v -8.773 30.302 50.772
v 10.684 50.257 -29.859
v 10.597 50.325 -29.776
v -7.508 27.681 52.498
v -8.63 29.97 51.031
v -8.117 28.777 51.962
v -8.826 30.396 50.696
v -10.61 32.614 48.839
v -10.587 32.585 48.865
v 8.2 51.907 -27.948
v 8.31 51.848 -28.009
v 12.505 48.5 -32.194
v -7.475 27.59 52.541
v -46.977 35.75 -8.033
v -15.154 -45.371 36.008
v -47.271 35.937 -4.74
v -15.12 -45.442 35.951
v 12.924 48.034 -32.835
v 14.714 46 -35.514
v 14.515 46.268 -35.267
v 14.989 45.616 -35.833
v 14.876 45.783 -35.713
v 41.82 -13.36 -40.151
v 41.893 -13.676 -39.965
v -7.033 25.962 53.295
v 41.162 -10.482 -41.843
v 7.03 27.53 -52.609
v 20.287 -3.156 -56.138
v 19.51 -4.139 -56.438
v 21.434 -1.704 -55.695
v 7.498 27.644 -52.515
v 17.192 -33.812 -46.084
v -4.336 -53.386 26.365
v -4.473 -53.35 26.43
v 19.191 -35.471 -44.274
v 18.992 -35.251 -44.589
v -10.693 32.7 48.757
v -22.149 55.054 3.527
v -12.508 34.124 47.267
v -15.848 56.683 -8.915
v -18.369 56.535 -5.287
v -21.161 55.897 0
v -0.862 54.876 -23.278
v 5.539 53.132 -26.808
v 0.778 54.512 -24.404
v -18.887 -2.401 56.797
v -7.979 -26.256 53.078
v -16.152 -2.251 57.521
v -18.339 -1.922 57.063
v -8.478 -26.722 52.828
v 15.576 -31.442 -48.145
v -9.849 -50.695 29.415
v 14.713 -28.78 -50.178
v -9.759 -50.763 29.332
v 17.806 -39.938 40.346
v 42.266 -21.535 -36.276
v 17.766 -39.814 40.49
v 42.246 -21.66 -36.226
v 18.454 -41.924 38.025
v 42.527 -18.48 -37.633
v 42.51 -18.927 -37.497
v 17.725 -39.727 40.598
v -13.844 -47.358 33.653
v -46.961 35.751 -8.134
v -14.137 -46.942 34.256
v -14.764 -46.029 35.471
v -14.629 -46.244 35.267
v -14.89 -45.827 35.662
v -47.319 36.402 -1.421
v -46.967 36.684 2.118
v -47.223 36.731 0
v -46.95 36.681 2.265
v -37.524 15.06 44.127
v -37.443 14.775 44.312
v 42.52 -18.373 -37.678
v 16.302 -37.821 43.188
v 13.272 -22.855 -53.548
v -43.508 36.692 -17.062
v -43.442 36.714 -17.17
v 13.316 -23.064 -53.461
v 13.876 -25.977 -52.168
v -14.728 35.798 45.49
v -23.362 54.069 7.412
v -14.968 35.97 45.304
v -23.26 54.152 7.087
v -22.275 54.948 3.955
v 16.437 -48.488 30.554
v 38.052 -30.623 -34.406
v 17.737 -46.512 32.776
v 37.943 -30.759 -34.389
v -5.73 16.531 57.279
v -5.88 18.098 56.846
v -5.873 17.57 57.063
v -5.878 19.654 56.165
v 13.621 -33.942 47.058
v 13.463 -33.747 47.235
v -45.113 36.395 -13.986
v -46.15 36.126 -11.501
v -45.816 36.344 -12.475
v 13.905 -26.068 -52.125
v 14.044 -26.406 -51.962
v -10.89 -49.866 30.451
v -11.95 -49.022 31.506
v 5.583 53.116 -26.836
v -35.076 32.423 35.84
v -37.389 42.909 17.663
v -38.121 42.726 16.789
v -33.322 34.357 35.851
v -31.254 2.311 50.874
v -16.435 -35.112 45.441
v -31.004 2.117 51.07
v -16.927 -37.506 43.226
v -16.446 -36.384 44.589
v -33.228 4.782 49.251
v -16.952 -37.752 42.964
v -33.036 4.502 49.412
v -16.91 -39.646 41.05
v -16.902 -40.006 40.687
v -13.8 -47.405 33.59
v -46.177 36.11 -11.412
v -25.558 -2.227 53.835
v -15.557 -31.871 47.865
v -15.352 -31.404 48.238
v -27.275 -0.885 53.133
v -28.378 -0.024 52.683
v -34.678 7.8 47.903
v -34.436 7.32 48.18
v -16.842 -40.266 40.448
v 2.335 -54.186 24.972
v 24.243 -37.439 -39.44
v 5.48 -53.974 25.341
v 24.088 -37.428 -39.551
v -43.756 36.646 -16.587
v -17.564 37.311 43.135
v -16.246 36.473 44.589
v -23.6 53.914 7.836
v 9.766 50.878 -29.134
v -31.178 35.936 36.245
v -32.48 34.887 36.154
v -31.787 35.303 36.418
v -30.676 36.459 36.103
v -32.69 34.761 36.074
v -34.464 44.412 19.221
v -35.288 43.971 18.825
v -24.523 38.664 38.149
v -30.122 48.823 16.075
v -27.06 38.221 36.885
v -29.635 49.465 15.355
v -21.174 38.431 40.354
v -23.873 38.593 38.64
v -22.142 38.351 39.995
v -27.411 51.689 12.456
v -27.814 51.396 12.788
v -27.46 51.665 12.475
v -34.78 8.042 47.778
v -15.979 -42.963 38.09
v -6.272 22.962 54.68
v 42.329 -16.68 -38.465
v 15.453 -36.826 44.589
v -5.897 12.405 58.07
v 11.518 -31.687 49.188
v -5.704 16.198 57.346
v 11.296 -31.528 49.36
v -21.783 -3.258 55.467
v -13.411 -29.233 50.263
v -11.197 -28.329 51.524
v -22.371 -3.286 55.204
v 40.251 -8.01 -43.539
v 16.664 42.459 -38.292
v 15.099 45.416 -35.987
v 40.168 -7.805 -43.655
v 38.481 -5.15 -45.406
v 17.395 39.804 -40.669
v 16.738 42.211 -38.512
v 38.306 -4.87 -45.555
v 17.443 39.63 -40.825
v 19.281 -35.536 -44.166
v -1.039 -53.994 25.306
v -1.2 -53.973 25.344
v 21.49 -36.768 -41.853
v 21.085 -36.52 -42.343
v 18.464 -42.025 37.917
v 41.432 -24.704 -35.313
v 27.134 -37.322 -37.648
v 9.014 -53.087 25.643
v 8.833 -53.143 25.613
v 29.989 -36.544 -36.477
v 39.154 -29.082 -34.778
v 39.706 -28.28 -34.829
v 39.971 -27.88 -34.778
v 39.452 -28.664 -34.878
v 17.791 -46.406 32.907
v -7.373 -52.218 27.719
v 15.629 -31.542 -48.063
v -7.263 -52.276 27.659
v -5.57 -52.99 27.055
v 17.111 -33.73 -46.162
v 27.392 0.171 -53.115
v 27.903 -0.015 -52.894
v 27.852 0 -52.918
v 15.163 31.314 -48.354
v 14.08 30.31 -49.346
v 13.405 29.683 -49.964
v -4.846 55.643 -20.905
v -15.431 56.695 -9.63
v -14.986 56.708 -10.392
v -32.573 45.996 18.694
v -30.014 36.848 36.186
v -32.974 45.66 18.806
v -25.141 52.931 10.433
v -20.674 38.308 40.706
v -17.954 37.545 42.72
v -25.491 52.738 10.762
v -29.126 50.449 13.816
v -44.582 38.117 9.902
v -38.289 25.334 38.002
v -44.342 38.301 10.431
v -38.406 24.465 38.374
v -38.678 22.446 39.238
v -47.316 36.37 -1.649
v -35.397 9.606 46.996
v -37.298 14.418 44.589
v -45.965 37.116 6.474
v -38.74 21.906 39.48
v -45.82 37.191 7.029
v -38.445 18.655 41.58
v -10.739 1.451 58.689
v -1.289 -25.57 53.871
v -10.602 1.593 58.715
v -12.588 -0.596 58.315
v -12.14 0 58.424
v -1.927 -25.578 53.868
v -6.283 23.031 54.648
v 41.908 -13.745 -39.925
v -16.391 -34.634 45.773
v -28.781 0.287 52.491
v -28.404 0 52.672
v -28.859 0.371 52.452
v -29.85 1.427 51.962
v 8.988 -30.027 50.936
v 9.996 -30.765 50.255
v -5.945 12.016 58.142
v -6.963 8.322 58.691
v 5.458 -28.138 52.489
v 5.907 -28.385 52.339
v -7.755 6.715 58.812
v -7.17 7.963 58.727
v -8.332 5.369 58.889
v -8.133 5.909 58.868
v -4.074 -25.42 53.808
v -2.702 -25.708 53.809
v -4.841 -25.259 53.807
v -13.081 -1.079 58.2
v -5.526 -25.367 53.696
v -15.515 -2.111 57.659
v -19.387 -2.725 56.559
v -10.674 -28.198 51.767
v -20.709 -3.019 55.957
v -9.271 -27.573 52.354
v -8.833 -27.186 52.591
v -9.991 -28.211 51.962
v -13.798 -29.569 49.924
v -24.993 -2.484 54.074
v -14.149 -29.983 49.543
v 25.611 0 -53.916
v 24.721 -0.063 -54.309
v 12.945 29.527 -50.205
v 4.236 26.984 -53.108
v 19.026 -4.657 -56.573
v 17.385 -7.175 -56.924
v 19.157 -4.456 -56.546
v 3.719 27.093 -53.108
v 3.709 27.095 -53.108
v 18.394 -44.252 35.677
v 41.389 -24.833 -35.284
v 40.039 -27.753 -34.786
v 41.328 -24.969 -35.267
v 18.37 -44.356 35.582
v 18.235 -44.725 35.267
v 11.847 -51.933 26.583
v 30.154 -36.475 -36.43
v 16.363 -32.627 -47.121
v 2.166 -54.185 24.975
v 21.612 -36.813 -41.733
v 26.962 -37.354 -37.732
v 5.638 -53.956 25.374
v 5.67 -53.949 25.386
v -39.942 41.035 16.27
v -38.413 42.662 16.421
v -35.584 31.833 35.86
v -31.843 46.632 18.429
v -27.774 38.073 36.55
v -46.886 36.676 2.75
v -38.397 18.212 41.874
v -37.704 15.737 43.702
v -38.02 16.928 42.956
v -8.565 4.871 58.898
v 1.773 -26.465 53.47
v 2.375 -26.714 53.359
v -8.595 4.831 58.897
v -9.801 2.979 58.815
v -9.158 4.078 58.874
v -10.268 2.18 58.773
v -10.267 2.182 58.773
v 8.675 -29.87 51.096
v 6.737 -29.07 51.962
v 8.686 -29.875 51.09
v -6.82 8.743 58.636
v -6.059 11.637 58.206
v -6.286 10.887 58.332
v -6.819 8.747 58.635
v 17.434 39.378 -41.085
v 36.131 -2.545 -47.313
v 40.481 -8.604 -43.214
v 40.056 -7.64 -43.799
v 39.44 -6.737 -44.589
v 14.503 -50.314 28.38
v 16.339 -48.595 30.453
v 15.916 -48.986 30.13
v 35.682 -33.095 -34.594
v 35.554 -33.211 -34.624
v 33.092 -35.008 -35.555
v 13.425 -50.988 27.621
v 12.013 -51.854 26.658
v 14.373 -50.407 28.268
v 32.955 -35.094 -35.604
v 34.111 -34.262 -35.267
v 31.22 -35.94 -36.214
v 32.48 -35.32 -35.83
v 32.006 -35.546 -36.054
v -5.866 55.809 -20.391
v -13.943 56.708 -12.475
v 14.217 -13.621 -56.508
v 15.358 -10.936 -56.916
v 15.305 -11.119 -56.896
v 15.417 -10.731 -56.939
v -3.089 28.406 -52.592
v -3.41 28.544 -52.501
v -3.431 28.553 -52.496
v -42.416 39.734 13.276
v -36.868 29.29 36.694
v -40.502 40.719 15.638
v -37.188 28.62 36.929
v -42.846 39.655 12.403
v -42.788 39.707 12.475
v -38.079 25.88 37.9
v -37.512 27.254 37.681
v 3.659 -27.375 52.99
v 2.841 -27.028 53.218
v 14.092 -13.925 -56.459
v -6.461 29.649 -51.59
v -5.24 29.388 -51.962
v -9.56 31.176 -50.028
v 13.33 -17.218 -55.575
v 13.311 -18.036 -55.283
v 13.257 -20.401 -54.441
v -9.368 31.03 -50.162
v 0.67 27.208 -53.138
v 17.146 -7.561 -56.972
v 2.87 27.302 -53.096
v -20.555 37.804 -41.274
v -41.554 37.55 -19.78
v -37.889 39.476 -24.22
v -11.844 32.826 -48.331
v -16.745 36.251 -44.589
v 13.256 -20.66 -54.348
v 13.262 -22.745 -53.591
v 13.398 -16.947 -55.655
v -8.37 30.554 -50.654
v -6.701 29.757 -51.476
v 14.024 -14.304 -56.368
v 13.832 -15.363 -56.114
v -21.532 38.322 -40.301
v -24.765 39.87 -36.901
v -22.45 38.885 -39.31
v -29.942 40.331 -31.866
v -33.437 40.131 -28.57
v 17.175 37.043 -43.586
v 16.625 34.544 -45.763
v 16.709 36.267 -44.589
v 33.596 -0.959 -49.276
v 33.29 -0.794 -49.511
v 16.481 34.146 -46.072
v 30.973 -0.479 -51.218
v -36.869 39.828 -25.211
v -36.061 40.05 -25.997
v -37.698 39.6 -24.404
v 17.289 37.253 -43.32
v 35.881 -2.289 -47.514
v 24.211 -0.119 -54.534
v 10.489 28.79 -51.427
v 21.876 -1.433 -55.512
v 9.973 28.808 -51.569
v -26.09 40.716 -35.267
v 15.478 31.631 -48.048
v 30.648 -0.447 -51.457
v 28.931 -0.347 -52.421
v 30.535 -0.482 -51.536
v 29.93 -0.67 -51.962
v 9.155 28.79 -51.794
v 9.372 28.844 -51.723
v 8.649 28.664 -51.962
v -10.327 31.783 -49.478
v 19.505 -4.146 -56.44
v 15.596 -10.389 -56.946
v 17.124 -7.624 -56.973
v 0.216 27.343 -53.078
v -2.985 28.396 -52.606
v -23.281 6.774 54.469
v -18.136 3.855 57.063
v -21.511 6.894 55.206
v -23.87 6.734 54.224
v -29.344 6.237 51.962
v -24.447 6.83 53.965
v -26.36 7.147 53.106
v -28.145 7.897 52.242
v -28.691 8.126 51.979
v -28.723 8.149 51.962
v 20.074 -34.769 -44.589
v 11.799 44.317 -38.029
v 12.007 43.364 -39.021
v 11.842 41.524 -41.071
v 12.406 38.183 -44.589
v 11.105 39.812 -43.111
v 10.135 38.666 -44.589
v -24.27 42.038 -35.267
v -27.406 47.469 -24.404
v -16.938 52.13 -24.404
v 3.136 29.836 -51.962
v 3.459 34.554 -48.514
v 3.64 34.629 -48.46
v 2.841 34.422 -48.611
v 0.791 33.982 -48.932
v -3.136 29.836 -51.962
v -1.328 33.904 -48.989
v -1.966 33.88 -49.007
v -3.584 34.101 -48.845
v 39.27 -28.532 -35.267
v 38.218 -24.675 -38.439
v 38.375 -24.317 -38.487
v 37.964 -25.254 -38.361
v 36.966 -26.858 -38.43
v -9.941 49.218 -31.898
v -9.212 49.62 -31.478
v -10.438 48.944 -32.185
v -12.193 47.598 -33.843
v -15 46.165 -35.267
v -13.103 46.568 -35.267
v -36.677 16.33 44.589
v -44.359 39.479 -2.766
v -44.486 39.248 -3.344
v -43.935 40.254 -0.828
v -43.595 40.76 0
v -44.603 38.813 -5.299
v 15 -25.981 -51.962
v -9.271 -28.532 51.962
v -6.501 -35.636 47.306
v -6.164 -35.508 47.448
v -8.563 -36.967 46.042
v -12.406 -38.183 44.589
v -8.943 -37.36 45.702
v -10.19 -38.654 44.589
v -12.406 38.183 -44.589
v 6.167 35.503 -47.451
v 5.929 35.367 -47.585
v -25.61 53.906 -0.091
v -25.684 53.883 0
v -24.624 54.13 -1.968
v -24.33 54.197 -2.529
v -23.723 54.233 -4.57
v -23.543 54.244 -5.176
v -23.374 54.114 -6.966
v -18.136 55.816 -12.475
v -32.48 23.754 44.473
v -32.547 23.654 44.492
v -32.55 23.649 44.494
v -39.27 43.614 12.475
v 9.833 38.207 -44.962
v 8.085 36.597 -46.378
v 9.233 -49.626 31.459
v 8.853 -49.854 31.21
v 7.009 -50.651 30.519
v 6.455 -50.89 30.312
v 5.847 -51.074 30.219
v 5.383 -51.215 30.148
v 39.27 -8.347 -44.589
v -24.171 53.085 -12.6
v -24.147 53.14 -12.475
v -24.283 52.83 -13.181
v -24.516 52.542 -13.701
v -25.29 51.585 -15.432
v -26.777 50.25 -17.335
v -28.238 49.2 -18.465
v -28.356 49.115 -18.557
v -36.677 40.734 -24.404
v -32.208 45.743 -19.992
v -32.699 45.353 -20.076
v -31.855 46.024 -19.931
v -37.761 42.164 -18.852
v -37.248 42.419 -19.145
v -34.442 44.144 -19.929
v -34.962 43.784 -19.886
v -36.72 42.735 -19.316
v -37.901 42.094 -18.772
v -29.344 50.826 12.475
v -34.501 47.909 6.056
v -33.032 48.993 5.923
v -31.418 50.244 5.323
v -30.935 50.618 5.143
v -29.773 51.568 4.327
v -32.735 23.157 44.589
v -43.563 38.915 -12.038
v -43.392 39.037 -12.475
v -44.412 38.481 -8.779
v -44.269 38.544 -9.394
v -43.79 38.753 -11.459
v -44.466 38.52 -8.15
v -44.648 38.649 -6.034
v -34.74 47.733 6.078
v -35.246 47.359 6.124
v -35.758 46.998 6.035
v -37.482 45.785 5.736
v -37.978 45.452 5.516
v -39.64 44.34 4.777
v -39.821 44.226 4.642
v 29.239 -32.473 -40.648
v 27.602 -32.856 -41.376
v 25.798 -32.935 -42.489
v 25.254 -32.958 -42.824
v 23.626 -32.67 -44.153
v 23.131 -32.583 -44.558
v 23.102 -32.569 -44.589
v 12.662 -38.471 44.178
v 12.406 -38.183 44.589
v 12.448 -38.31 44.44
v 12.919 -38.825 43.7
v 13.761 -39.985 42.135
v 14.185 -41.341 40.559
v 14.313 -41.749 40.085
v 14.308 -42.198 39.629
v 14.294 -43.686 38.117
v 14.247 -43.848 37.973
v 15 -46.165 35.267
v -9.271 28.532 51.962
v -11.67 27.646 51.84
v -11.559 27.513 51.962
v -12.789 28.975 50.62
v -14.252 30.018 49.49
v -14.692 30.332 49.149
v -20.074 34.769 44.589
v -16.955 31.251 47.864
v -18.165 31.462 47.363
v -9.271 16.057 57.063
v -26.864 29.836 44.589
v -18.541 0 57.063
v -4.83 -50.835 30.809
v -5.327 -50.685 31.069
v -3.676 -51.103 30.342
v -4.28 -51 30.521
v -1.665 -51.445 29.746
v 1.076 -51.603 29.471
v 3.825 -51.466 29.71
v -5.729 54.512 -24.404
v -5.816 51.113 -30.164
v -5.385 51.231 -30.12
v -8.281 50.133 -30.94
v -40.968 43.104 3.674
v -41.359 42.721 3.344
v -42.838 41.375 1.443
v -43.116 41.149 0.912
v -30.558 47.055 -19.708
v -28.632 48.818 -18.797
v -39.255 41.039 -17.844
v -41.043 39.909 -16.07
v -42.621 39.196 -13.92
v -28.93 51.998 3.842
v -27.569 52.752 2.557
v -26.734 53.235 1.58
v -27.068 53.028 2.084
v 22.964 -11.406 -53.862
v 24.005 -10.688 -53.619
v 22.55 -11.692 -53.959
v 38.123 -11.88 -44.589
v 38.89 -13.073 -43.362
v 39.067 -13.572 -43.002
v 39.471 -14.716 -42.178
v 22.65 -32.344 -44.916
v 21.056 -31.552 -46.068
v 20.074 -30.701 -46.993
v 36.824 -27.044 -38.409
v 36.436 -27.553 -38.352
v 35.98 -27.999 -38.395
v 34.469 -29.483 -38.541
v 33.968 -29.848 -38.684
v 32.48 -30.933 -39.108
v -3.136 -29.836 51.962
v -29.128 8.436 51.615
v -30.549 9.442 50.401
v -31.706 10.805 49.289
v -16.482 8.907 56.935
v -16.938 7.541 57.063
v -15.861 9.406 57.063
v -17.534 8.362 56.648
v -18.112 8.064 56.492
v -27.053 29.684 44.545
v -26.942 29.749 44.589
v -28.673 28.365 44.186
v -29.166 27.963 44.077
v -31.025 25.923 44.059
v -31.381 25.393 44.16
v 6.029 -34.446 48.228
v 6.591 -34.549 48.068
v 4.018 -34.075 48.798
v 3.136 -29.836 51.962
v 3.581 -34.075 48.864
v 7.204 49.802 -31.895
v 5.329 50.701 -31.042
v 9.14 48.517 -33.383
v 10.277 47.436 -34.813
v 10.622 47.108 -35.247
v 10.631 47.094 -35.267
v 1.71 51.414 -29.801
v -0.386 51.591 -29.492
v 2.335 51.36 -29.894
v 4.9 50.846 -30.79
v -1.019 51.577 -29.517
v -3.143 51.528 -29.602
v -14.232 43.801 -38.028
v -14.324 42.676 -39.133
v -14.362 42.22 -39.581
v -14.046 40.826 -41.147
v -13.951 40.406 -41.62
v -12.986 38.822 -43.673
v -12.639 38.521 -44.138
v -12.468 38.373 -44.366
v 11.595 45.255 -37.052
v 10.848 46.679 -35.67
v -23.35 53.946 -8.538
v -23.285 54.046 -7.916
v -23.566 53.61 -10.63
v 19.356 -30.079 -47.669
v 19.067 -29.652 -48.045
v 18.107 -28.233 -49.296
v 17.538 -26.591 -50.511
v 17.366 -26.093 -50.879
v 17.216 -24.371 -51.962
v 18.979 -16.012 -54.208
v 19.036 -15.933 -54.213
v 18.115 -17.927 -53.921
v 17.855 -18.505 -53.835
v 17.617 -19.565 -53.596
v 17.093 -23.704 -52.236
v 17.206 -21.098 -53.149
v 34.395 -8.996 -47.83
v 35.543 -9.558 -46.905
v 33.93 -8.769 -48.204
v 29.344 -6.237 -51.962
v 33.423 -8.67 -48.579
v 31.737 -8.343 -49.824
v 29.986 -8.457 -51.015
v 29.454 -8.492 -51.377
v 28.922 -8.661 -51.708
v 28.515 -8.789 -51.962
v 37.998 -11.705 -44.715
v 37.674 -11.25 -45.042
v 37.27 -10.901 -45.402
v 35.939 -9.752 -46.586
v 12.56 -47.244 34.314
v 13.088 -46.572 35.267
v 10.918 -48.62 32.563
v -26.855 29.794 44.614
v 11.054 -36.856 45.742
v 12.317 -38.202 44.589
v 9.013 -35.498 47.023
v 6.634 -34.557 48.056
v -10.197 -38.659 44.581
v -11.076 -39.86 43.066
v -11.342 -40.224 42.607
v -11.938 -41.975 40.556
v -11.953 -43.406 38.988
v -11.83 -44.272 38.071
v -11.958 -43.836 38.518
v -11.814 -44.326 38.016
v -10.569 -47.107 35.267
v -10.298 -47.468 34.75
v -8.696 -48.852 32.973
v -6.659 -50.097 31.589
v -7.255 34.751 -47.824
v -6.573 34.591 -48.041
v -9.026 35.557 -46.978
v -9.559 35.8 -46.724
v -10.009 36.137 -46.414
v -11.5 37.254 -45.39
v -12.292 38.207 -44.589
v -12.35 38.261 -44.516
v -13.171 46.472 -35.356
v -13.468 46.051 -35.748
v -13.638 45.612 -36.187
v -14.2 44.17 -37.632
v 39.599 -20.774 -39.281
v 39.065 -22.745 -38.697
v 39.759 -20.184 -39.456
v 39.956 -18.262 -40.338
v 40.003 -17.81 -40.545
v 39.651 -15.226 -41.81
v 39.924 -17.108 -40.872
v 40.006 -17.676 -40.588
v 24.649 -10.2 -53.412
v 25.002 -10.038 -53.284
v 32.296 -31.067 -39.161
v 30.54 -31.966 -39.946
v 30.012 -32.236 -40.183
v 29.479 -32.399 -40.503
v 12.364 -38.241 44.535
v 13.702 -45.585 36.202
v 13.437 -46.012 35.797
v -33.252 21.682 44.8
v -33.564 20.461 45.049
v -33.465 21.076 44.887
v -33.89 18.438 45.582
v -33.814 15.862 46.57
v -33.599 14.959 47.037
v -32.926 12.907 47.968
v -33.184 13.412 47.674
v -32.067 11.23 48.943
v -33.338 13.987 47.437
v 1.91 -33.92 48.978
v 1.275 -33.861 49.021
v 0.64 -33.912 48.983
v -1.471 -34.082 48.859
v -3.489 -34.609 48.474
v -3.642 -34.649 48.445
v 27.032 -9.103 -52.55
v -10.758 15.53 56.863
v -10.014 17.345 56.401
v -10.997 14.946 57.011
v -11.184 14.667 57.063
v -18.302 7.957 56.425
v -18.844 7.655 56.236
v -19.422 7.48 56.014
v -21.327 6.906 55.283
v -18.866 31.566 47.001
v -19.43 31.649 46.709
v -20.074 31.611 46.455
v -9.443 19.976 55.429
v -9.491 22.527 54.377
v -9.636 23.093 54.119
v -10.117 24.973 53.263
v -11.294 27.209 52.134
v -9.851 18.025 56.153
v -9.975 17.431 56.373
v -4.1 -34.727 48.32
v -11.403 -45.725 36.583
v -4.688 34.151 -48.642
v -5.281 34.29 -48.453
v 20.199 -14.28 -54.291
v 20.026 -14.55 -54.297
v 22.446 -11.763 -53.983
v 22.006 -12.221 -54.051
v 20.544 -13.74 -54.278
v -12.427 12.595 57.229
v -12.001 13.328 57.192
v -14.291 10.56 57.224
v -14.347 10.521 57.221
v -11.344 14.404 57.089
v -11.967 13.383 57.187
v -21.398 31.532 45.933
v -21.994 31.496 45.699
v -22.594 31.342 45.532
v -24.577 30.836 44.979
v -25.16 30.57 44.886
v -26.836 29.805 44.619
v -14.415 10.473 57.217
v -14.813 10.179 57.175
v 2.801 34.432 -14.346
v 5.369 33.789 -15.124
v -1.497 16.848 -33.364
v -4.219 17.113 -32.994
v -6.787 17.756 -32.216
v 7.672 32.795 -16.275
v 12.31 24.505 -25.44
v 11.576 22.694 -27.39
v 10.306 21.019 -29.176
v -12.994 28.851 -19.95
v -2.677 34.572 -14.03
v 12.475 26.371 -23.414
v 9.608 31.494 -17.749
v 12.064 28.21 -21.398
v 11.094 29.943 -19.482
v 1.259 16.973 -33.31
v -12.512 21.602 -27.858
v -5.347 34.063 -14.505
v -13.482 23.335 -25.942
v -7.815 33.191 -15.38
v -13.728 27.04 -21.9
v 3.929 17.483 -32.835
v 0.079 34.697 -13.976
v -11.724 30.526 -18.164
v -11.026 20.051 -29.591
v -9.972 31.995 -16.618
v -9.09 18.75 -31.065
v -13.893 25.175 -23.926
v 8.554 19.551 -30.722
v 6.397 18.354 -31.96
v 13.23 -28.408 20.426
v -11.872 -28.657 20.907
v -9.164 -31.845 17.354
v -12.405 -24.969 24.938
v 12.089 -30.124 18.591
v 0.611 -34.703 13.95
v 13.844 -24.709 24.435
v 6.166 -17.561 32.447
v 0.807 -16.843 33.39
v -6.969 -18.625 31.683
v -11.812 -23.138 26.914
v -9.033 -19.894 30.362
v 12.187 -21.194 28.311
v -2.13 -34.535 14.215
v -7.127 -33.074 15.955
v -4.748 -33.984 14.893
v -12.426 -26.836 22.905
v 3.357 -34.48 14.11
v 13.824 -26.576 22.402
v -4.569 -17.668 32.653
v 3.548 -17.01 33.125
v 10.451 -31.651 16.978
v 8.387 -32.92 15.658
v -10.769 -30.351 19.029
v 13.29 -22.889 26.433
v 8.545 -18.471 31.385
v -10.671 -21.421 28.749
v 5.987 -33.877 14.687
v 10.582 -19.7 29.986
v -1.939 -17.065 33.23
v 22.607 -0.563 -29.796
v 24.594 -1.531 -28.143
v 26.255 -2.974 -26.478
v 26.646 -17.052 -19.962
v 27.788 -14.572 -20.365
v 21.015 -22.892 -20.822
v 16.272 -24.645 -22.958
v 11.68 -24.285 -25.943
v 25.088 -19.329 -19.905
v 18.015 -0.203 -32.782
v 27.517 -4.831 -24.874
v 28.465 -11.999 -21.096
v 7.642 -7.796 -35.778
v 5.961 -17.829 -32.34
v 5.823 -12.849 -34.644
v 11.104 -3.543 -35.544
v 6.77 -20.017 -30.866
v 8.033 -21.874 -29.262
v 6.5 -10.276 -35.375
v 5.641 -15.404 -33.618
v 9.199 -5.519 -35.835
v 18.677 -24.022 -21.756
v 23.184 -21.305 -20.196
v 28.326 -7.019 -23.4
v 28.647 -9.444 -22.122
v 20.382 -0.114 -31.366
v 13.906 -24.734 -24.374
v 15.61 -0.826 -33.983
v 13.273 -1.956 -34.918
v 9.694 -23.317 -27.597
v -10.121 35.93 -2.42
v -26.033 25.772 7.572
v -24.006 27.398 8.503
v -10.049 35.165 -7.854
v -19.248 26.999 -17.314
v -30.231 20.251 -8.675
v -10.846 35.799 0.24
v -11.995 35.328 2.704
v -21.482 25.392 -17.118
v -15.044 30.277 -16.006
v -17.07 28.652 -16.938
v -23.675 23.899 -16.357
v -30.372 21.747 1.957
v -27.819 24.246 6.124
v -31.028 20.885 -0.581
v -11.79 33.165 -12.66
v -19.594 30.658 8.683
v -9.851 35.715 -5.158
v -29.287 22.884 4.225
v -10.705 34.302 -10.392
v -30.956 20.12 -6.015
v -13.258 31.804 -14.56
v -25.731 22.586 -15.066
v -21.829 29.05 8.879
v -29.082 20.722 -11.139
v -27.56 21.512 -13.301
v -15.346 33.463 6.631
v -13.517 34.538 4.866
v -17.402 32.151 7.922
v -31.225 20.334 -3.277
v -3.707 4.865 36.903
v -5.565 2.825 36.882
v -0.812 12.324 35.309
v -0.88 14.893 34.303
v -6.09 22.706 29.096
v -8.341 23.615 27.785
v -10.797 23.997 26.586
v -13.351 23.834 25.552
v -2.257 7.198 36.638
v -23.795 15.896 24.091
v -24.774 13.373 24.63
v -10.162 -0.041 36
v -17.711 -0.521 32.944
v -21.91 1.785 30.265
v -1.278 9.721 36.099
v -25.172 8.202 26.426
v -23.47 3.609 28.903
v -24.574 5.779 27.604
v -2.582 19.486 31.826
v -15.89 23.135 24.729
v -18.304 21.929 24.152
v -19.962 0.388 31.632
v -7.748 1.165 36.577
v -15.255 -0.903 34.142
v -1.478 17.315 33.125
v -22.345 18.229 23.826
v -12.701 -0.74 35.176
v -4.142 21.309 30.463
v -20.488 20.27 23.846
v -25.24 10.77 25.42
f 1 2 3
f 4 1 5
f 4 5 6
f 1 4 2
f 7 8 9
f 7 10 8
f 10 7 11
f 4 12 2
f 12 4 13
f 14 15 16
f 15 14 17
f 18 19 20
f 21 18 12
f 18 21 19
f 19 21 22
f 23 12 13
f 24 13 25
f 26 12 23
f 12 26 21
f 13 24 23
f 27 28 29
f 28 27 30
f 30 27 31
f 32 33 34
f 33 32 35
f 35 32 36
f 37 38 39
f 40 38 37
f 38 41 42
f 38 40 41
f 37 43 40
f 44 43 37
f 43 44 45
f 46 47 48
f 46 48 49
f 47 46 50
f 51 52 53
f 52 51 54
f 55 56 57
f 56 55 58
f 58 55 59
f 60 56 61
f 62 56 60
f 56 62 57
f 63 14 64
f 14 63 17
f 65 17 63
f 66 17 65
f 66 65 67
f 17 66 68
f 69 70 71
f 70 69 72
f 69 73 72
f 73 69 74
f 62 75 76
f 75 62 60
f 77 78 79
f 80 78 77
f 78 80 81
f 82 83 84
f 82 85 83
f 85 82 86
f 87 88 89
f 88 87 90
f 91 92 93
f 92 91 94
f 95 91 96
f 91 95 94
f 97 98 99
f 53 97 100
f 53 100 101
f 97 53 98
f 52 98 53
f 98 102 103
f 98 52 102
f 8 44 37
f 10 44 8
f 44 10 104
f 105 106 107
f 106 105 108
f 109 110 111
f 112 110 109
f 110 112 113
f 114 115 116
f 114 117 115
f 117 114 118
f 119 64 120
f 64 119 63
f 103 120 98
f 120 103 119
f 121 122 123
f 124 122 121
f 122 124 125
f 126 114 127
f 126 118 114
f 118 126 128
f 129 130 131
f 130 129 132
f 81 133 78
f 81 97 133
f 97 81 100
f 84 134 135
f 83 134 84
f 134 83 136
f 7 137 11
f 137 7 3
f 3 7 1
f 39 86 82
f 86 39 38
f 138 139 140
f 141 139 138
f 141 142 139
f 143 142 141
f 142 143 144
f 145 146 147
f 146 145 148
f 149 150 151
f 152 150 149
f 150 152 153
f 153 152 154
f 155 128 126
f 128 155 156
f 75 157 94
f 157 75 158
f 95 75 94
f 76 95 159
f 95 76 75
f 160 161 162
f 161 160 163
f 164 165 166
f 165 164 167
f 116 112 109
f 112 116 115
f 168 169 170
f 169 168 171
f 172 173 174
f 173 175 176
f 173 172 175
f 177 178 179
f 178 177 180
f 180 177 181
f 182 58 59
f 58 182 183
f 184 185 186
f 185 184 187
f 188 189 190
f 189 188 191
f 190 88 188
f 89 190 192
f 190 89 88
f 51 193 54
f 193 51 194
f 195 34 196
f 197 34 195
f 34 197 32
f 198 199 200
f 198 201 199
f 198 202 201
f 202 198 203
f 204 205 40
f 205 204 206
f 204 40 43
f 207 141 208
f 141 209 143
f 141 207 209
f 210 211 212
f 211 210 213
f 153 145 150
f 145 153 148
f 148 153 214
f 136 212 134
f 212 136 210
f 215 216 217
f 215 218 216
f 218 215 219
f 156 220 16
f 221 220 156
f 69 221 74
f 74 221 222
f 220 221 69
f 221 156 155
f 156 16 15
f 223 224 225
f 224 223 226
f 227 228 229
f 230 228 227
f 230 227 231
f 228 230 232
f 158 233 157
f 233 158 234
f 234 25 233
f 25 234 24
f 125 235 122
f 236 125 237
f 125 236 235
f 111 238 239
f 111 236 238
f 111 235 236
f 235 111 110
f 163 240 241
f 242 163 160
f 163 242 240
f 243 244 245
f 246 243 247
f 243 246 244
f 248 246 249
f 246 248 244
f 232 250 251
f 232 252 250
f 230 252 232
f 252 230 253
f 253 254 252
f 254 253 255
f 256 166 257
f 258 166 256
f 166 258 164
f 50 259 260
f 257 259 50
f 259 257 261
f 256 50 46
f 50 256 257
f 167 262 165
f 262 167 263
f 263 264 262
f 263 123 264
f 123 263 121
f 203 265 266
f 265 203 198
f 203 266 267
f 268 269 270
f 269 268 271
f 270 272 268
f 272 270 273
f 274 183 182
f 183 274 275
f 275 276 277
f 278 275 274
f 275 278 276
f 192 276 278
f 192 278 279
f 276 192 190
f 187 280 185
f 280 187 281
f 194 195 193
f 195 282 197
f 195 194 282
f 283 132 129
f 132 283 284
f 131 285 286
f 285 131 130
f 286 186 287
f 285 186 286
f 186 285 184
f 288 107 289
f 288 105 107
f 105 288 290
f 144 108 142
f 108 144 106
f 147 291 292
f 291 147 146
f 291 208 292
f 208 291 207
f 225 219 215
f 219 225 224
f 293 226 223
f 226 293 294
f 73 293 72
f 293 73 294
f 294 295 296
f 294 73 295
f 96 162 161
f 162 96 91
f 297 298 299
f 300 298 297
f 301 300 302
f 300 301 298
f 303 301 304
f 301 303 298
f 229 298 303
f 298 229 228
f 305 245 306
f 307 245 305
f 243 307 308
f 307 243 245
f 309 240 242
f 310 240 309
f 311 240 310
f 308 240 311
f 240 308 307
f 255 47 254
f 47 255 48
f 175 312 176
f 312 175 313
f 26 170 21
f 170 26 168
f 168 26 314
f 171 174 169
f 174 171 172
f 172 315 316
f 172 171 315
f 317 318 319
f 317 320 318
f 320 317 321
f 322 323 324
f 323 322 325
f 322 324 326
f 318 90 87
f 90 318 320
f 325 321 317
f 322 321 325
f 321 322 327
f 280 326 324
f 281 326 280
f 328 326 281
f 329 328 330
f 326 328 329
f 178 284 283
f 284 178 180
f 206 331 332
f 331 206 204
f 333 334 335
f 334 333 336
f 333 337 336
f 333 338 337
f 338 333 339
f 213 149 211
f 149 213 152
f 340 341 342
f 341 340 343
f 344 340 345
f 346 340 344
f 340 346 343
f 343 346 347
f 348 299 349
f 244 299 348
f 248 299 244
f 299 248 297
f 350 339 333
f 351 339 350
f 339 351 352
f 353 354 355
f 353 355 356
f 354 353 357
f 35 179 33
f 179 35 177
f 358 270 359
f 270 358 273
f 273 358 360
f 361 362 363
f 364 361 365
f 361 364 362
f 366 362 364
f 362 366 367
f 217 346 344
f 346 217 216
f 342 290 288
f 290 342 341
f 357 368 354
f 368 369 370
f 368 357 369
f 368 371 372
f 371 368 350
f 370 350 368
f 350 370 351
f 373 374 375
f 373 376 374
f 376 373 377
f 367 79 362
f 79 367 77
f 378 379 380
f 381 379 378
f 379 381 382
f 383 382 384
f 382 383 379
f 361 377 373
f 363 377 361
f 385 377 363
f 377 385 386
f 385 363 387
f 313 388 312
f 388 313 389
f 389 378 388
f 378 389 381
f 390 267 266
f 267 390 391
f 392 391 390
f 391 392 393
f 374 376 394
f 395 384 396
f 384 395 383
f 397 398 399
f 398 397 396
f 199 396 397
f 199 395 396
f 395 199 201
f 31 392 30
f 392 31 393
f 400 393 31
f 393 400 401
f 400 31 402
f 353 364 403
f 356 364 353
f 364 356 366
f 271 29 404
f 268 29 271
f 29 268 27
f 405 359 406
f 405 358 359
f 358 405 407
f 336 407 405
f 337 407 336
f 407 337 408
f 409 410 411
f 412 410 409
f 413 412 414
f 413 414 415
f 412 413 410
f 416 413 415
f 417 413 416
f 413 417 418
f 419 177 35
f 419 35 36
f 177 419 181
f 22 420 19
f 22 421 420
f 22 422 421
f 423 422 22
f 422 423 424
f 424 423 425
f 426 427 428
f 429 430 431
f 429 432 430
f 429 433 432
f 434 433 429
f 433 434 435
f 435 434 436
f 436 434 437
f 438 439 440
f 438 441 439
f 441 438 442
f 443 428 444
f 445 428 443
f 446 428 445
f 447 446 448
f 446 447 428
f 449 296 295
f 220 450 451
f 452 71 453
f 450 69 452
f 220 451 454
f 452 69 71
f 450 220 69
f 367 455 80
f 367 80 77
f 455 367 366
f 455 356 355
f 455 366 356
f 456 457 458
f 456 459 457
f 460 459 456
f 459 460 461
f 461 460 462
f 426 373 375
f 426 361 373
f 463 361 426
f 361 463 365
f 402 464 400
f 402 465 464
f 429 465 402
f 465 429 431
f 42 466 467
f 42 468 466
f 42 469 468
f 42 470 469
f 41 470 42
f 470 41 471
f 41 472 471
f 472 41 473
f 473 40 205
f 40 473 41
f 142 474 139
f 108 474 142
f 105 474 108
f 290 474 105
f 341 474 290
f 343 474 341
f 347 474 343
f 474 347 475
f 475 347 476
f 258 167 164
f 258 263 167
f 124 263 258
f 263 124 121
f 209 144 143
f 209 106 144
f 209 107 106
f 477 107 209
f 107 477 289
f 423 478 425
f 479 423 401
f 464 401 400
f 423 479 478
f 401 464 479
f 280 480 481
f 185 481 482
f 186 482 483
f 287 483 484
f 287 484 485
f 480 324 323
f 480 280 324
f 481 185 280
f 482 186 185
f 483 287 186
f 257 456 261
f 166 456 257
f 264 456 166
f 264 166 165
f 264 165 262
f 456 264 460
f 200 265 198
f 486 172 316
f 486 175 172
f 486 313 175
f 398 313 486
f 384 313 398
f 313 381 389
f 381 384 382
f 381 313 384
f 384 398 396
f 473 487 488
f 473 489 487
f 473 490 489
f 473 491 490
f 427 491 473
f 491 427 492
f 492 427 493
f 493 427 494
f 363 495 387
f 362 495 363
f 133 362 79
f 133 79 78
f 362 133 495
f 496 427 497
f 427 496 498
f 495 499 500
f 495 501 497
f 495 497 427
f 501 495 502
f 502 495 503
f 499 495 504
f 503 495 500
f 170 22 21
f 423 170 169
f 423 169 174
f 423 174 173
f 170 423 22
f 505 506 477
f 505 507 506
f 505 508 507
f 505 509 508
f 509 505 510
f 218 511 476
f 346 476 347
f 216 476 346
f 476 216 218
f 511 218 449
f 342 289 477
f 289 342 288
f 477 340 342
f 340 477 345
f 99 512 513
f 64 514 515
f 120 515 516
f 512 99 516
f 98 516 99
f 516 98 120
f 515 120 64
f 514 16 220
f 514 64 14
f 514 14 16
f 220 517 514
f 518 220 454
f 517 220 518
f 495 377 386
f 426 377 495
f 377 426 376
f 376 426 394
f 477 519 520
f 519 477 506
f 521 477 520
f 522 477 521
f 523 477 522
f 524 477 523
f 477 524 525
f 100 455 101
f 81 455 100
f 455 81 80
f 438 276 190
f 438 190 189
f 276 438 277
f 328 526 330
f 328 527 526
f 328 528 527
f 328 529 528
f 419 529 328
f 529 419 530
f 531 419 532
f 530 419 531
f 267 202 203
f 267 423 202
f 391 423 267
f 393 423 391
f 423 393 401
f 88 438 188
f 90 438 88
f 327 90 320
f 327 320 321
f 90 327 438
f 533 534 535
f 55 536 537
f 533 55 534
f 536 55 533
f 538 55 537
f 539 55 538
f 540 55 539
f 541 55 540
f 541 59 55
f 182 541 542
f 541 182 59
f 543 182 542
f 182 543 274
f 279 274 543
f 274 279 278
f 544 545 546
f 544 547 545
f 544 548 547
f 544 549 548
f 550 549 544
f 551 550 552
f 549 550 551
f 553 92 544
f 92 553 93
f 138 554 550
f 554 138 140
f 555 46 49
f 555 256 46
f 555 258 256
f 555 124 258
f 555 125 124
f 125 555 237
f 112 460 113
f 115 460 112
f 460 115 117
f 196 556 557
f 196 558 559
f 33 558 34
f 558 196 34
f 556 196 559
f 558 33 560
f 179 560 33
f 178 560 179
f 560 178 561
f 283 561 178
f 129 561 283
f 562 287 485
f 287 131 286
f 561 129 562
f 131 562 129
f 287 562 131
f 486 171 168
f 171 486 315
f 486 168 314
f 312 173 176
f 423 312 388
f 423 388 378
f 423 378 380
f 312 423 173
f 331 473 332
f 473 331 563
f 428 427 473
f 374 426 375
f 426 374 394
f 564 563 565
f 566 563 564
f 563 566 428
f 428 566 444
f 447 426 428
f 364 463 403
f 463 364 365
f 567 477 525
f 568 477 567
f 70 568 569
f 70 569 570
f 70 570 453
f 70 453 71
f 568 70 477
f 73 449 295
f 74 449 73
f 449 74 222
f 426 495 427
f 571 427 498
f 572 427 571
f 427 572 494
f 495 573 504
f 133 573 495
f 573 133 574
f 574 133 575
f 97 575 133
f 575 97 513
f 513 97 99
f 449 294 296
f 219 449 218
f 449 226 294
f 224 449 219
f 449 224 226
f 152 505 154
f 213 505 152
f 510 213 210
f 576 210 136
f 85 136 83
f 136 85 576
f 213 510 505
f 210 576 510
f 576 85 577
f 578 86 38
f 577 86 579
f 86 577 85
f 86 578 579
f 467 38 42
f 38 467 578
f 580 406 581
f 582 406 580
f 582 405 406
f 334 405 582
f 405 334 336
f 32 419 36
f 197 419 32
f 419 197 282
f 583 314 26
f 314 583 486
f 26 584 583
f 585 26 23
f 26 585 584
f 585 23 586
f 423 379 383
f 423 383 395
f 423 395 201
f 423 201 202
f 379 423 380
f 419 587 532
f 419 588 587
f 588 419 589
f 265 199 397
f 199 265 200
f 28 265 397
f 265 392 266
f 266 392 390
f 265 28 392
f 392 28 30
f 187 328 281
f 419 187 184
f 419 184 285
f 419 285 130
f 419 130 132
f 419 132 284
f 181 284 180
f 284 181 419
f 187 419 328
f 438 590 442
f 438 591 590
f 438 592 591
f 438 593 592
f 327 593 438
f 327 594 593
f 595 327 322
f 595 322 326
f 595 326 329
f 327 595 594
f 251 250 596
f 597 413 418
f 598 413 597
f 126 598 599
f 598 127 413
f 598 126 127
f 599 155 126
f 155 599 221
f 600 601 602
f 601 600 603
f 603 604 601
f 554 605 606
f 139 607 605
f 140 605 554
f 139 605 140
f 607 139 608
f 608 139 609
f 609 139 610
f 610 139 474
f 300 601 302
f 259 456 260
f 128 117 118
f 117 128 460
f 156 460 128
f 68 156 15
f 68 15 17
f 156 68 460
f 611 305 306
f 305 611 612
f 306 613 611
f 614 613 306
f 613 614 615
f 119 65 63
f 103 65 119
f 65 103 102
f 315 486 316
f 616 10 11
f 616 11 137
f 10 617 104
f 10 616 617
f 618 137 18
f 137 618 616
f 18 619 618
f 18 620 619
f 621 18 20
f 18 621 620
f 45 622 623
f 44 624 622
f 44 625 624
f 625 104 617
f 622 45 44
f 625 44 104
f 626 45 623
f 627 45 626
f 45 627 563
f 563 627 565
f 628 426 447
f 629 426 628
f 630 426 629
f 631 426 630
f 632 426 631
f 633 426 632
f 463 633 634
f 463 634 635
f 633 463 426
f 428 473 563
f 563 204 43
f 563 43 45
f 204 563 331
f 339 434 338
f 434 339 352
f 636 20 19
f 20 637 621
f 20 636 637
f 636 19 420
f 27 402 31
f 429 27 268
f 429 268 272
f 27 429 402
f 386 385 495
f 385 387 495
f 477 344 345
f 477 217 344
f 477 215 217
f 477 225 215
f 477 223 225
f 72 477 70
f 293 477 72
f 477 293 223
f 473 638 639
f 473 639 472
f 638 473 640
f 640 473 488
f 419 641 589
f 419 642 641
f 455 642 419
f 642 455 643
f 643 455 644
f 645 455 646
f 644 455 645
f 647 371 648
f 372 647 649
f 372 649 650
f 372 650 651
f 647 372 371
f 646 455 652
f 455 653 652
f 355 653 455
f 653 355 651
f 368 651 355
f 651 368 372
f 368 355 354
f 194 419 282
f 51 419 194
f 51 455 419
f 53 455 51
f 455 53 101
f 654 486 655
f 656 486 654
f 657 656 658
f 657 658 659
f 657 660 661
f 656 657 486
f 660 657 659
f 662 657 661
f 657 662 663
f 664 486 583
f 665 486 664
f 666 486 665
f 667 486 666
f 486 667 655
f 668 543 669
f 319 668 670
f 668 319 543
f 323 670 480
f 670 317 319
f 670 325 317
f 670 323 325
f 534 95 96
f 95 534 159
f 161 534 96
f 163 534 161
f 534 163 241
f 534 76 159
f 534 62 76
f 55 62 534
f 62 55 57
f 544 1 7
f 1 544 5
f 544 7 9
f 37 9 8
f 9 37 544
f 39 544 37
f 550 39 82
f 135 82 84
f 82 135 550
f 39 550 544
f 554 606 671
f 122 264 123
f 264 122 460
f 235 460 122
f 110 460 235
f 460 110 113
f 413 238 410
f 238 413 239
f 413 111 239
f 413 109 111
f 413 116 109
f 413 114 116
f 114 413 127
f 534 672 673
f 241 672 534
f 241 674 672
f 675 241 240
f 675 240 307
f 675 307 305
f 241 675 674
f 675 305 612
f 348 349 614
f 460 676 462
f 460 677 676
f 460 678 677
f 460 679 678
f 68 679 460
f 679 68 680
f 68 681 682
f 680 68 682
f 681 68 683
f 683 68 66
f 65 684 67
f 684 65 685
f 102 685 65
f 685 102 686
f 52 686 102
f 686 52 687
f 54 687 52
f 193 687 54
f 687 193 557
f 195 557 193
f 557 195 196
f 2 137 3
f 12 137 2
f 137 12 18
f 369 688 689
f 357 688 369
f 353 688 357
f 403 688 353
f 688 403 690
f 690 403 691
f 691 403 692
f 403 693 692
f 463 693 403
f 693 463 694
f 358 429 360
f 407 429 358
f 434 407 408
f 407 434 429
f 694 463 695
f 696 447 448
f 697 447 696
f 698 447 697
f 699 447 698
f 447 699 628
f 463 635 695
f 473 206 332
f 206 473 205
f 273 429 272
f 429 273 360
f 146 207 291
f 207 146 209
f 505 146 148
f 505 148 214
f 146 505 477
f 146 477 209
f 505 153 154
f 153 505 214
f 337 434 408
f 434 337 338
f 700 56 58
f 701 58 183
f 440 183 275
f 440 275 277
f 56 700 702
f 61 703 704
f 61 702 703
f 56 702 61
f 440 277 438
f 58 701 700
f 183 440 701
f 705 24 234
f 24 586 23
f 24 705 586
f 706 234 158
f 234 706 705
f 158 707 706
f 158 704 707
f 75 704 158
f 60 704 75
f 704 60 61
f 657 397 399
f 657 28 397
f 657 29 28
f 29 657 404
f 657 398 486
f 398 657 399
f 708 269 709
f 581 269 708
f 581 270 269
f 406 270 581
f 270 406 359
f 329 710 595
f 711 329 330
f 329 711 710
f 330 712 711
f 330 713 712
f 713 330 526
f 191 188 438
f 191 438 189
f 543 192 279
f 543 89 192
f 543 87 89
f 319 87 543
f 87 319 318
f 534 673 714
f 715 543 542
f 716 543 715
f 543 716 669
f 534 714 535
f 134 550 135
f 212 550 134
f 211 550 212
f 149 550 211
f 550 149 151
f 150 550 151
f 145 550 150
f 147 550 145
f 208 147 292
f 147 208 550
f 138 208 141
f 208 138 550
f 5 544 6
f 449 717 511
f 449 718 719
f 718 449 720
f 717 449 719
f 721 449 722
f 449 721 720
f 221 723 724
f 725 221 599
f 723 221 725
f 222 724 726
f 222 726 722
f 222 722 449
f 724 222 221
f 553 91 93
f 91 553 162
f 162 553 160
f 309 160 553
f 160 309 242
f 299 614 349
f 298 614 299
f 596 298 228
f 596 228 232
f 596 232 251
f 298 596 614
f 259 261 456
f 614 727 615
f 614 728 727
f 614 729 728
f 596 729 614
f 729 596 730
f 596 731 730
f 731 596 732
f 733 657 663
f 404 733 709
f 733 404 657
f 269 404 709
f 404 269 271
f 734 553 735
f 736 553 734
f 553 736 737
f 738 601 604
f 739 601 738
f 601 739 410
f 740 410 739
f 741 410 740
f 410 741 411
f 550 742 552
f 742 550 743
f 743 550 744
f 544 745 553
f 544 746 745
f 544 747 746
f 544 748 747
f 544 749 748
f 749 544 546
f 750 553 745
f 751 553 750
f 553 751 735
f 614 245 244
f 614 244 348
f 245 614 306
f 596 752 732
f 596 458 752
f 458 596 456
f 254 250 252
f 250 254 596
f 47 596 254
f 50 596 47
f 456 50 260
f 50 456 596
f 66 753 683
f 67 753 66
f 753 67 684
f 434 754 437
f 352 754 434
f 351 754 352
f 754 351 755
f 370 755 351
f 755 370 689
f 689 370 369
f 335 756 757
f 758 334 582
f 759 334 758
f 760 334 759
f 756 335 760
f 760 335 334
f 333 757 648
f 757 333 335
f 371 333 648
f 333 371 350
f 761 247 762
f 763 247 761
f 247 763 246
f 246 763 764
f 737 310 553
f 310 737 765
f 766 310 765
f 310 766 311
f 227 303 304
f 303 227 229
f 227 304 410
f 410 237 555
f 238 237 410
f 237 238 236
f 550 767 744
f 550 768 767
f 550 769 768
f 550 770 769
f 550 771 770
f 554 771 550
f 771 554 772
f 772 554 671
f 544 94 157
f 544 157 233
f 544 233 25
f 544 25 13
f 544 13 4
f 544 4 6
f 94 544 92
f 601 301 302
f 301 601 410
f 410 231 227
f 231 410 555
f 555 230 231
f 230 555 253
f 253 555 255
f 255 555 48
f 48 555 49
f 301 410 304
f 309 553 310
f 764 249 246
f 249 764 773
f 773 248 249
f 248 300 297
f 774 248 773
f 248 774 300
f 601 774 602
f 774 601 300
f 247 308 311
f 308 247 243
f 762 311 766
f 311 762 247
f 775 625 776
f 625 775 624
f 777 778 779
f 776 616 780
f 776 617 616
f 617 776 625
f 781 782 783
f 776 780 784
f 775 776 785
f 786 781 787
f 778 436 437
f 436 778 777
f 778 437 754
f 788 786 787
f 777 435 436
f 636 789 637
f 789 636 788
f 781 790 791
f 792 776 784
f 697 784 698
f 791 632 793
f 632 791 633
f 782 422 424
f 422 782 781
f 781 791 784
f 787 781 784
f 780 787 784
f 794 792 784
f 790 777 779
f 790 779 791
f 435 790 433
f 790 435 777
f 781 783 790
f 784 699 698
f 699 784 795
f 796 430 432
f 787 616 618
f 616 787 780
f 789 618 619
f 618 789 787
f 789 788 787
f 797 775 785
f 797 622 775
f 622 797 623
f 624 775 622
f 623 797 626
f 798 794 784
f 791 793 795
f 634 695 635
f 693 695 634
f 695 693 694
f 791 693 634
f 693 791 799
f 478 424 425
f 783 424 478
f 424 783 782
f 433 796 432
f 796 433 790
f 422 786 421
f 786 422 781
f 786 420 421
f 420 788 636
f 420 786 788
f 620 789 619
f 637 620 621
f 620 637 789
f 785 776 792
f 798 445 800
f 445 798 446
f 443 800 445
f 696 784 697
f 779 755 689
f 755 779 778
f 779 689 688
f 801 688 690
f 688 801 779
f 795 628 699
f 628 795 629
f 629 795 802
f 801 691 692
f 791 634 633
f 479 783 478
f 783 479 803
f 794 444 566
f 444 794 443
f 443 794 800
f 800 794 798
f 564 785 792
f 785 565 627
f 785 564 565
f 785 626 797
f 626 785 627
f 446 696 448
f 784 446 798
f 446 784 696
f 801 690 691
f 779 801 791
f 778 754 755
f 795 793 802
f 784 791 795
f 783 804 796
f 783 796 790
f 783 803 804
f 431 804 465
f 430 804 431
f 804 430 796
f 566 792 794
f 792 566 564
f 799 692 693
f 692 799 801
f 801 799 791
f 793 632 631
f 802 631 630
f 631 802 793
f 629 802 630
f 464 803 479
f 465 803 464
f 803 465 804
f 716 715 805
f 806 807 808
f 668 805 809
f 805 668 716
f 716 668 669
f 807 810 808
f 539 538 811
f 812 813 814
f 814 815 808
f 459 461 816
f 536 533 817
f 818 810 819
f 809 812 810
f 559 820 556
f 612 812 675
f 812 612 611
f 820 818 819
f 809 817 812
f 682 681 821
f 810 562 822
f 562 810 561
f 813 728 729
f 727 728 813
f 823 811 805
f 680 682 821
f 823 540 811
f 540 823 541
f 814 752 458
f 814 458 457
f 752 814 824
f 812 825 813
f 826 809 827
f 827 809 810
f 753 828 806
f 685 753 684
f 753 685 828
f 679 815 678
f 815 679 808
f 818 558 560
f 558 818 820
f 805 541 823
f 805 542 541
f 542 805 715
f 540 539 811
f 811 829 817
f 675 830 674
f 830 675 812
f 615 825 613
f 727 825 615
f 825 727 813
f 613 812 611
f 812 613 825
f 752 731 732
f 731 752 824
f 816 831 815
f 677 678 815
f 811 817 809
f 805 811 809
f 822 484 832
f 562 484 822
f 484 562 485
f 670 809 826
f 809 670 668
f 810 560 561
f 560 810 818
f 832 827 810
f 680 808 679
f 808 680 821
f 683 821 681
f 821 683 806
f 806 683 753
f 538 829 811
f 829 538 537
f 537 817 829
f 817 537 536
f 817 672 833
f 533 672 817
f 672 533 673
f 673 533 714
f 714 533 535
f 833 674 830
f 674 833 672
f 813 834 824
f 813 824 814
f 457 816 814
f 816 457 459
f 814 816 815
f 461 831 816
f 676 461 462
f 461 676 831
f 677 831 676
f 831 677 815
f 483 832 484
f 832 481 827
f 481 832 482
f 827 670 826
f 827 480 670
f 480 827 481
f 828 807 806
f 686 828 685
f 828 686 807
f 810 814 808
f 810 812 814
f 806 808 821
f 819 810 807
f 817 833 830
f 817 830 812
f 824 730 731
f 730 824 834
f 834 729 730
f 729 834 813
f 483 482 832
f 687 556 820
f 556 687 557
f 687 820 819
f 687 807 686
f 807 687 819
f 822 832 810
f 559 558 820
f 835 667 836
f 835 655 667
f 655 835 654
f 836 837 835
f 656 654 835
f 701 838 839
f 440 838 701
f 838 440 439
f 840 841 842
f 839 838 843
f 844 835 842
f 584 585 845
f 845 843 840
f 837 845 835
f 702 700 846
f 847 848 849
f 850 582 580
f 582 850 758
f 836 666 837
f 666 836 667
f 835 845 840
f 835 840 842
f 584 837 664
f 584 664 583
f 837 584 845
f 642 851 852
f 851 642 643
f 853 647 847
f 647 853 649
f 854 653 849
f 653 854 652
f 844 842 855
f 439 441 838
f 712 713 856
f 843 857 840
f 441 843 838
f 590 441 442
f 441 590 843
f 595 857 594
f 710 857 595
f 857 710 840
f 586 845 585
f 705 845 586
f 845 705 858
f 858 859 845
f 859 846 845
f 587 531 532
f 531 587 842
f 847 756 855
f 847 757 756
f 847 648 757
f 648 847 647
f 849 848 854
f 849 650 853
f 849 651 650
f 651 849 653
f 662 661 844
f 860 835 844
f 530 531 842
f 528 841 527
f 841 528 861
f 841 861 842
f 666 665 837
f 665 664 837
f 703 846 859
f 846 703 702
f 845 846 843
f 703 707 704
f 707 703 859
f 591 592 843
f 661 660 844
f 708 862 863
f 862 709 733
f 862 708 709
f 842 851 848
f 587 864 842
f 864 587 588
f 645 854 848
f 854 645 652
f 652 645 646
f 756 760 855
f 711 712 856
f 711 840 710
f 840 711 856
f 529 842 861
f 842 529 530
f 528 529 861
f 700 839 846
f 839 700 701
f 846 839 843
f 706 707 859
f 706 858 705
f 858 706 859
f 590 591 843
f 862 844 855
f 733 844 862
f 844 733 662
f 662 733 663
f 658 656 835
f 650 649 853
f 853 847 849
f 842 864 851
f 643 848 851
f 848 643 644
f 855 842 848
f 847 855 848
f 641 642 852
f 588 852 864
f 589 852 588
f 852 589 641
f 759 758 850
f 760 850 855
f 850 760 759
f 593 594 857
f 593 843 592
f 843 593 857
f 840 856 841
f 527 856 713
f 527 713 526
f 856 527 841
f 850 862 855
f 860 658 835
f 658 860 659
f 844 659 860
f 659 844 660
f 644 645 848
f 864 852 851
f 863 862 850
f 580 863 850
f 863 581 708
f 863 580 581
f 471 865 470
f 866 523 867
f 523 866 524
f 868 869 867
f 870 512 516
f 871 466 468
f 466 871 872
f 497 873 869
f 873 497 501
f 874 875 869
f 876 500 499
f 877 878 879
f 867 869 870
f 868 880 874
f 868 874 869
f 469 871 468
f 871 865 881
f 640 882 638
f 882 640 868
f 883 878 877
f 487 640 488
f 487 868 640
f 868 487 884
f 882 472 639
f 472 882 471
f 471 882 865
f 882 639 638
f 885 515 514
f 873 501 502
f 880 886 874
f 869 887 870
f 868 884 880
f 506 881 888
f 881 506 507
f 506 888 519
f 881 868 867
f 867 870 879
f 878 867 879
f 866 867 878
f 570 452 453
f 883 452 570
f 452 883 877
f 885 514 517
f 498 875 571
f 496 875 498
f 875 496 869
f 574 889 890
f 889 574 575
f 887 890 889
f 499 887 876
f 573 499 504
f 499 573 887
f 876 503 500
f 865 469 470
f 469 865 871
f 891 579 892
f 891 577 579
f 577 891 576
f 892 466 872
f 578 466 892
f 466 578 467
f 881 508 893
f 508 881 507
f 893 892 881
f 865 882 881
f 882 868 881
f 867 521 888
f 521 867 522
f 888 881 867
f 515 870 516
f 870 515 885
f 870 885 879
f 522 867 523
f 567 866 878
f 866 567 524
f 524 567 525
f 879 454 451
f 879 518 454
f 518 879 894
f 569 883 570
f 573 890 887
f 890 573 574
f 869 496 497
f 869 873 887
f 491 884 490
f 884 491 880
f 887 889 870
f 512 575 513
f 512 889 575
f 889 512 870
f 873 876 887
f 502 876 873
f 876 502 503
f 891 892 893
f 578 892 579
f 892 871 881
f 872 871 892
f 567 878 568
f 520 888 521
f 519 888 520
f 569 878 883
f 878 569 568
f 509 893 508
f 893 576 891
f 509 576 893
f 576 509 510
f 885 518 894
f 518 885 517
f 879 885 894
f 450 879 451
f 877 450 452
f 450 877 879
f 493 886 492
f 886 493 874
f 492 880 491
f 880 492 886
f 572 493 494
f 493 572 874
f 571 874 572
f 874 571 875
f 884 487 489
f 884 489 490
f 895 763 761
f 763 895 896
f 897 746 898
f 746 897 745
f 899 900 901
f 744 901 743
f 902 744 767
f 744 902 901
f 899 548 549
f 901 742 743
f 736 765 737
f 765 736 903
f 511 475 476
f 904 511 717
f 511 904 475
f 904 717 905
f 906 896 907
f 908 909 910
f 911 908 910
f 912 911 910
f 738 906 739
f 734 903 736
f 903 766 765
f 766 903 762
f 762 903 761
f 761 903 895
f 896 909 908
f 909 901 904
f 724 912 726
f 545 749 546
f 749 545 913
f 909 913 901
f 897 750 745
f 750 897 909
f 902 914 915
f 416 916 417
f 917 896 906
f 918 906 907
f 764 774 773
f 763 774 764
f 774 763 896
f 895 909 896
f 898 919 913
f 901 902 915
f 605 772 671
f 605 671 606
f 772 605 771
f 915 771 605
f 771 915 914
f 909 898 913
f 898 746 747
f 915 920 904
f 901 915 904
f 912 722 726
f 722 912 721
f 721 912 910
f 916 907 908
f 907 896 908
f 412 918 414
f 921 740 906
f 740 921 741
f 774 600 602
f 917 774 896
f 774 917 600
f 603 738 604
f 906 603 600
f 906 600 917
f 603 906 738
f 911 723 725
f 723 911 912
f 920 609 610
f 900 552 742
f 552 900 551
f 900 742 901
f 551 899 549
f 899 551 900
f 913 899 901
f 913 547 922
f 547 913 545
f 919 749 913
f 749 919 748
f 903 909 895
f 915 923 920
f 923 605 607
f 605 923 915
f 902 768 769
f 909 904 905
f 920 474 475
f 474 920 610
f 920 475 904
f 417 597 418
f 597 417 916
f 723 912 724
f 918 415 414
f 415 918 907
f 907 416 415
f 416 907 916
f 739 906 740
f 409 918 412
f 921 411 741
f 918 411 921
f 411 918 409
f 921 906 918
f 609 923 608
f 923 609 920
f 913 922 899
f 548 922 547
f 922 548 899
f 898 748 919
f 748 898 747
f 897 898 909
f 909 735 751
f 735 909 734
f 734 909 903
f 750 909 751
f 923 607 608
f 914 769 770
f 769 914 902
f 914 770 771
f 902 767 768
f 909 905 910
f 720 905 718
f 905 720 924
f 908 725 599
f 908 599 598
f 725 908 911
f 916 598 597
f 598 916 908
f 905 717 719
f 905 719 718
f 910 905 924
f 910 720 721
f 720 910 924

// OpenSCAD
difference() {
	intersection() {
		hull() {
			rotate(a = -133.4455949914, v = [-0.6212273969, -0.3757561669, 0.0000000000]) {
				rotate(a = -90.0000000000, v = [-0.6087614290, -0.7933533403, 0.0000000000]) {
					cylinder(h = 60, r = 16.2000000000);
				}
			}
			rotate(a = -133.4455949914, v = [-0.6212273969, -0.3757561669, 0.0000000000]) {
				rotate(a = -90.0000000000, v = [0.6087614290, 0.7933533403, -0.0000000000]) {
					cylinder(h = 60, r = 16.2000000000);
				}
			}
			rotate(a = -133.4455949914, v = [-0.6212273969, -0.3757561669, 0.0000000000]) {
				rotate(a = -17.7962359238, v = [-0.0449584247, -0.3023079889, 0.0000000000]) {
					cylinder(h = 60, r = 16.2000000000);
				}
			}
			rotate(a = -133.4455949914, v = [-0.6212273969, -0.3757561669, 0.0000000000]) {
				rotate(a = -129.4241083656, v = [-0.7020786592, -0.3221644623, 0.0000000000]) {
					cylinder(h = 60, r = 16.2000000000);
				}
			}
			rotate(a = -133.4455949914, v = [-0.6212273969, -0.3757561669, 0.0000000000]) {
				rotate(a = -160.2852209964, v = [0.1830624990, 0.2833462722, -0.0000000000]) {
					cylinder(h = 60, r = 16.2000000000);
				}
			}
		}
		sphere(r = 60);
	}
	union() {
		rotate(a = -133.4455949914, v = [-0.6212273969, -0.3757561669, 0.0000000000]) {
			rotate(a = -90.0000000000, v = [-0.6087614290, -0.7933533403, 0.0000000000]) {
				translate(v = [0, 0, 35]) {
					cylinder(h = 100, r = 13.2000000000);
				}
			}
		}
		rotate(a = -133.4455949914, v = [-0.6212273969, -0.3757561669, 0.0000000000]) {
			rotate(a = -90.0000000000, v = [0.6087614290, 0.7933533403, -0.0000000000]) {
				translate(v = [0, 0, 35]) {
					cylinder(h = 100, r = 13.2000000000);
				}
			}
		}
		rotate(a = -133.4455949914, v = [-0.6212273969, -0.3757561669, 0.0000000000]) {
			rotate(a = -17.7962359238, v = [-0.0449584247, -0.3023079889, 0.0000000000]) {
				translate(v = [0, 0, 35]) {
					cylinder(h = 100, r = 13.2000000000);
				}
			}
		}
		rotate(a = -133.4455949914, v = [-0.6212273969, -0.3757561669, 0.0000000000]) {
			rotate(a = -129.4241083656, v = [-0.7020786592, -0.3221644623, 0.0000000000]) {
				translate(v = [0, 0, 35]) {
					cylinder(h = 100, r = 13.2000000000);
				}
			}
		}
		rotate(a = -133.4455949914, v = [-0.6212273969, -0.3757561669, 0.0000000000]) {
			rotate(a = -160.2852209964, v = [0.1830624990, 0.2833462722, -0.0000000000]) {
				translate(v = [0, 0, 35]) {
					cylinder(h = 100, r = 13.2000000000);
				}
			}
		}
	}
}
